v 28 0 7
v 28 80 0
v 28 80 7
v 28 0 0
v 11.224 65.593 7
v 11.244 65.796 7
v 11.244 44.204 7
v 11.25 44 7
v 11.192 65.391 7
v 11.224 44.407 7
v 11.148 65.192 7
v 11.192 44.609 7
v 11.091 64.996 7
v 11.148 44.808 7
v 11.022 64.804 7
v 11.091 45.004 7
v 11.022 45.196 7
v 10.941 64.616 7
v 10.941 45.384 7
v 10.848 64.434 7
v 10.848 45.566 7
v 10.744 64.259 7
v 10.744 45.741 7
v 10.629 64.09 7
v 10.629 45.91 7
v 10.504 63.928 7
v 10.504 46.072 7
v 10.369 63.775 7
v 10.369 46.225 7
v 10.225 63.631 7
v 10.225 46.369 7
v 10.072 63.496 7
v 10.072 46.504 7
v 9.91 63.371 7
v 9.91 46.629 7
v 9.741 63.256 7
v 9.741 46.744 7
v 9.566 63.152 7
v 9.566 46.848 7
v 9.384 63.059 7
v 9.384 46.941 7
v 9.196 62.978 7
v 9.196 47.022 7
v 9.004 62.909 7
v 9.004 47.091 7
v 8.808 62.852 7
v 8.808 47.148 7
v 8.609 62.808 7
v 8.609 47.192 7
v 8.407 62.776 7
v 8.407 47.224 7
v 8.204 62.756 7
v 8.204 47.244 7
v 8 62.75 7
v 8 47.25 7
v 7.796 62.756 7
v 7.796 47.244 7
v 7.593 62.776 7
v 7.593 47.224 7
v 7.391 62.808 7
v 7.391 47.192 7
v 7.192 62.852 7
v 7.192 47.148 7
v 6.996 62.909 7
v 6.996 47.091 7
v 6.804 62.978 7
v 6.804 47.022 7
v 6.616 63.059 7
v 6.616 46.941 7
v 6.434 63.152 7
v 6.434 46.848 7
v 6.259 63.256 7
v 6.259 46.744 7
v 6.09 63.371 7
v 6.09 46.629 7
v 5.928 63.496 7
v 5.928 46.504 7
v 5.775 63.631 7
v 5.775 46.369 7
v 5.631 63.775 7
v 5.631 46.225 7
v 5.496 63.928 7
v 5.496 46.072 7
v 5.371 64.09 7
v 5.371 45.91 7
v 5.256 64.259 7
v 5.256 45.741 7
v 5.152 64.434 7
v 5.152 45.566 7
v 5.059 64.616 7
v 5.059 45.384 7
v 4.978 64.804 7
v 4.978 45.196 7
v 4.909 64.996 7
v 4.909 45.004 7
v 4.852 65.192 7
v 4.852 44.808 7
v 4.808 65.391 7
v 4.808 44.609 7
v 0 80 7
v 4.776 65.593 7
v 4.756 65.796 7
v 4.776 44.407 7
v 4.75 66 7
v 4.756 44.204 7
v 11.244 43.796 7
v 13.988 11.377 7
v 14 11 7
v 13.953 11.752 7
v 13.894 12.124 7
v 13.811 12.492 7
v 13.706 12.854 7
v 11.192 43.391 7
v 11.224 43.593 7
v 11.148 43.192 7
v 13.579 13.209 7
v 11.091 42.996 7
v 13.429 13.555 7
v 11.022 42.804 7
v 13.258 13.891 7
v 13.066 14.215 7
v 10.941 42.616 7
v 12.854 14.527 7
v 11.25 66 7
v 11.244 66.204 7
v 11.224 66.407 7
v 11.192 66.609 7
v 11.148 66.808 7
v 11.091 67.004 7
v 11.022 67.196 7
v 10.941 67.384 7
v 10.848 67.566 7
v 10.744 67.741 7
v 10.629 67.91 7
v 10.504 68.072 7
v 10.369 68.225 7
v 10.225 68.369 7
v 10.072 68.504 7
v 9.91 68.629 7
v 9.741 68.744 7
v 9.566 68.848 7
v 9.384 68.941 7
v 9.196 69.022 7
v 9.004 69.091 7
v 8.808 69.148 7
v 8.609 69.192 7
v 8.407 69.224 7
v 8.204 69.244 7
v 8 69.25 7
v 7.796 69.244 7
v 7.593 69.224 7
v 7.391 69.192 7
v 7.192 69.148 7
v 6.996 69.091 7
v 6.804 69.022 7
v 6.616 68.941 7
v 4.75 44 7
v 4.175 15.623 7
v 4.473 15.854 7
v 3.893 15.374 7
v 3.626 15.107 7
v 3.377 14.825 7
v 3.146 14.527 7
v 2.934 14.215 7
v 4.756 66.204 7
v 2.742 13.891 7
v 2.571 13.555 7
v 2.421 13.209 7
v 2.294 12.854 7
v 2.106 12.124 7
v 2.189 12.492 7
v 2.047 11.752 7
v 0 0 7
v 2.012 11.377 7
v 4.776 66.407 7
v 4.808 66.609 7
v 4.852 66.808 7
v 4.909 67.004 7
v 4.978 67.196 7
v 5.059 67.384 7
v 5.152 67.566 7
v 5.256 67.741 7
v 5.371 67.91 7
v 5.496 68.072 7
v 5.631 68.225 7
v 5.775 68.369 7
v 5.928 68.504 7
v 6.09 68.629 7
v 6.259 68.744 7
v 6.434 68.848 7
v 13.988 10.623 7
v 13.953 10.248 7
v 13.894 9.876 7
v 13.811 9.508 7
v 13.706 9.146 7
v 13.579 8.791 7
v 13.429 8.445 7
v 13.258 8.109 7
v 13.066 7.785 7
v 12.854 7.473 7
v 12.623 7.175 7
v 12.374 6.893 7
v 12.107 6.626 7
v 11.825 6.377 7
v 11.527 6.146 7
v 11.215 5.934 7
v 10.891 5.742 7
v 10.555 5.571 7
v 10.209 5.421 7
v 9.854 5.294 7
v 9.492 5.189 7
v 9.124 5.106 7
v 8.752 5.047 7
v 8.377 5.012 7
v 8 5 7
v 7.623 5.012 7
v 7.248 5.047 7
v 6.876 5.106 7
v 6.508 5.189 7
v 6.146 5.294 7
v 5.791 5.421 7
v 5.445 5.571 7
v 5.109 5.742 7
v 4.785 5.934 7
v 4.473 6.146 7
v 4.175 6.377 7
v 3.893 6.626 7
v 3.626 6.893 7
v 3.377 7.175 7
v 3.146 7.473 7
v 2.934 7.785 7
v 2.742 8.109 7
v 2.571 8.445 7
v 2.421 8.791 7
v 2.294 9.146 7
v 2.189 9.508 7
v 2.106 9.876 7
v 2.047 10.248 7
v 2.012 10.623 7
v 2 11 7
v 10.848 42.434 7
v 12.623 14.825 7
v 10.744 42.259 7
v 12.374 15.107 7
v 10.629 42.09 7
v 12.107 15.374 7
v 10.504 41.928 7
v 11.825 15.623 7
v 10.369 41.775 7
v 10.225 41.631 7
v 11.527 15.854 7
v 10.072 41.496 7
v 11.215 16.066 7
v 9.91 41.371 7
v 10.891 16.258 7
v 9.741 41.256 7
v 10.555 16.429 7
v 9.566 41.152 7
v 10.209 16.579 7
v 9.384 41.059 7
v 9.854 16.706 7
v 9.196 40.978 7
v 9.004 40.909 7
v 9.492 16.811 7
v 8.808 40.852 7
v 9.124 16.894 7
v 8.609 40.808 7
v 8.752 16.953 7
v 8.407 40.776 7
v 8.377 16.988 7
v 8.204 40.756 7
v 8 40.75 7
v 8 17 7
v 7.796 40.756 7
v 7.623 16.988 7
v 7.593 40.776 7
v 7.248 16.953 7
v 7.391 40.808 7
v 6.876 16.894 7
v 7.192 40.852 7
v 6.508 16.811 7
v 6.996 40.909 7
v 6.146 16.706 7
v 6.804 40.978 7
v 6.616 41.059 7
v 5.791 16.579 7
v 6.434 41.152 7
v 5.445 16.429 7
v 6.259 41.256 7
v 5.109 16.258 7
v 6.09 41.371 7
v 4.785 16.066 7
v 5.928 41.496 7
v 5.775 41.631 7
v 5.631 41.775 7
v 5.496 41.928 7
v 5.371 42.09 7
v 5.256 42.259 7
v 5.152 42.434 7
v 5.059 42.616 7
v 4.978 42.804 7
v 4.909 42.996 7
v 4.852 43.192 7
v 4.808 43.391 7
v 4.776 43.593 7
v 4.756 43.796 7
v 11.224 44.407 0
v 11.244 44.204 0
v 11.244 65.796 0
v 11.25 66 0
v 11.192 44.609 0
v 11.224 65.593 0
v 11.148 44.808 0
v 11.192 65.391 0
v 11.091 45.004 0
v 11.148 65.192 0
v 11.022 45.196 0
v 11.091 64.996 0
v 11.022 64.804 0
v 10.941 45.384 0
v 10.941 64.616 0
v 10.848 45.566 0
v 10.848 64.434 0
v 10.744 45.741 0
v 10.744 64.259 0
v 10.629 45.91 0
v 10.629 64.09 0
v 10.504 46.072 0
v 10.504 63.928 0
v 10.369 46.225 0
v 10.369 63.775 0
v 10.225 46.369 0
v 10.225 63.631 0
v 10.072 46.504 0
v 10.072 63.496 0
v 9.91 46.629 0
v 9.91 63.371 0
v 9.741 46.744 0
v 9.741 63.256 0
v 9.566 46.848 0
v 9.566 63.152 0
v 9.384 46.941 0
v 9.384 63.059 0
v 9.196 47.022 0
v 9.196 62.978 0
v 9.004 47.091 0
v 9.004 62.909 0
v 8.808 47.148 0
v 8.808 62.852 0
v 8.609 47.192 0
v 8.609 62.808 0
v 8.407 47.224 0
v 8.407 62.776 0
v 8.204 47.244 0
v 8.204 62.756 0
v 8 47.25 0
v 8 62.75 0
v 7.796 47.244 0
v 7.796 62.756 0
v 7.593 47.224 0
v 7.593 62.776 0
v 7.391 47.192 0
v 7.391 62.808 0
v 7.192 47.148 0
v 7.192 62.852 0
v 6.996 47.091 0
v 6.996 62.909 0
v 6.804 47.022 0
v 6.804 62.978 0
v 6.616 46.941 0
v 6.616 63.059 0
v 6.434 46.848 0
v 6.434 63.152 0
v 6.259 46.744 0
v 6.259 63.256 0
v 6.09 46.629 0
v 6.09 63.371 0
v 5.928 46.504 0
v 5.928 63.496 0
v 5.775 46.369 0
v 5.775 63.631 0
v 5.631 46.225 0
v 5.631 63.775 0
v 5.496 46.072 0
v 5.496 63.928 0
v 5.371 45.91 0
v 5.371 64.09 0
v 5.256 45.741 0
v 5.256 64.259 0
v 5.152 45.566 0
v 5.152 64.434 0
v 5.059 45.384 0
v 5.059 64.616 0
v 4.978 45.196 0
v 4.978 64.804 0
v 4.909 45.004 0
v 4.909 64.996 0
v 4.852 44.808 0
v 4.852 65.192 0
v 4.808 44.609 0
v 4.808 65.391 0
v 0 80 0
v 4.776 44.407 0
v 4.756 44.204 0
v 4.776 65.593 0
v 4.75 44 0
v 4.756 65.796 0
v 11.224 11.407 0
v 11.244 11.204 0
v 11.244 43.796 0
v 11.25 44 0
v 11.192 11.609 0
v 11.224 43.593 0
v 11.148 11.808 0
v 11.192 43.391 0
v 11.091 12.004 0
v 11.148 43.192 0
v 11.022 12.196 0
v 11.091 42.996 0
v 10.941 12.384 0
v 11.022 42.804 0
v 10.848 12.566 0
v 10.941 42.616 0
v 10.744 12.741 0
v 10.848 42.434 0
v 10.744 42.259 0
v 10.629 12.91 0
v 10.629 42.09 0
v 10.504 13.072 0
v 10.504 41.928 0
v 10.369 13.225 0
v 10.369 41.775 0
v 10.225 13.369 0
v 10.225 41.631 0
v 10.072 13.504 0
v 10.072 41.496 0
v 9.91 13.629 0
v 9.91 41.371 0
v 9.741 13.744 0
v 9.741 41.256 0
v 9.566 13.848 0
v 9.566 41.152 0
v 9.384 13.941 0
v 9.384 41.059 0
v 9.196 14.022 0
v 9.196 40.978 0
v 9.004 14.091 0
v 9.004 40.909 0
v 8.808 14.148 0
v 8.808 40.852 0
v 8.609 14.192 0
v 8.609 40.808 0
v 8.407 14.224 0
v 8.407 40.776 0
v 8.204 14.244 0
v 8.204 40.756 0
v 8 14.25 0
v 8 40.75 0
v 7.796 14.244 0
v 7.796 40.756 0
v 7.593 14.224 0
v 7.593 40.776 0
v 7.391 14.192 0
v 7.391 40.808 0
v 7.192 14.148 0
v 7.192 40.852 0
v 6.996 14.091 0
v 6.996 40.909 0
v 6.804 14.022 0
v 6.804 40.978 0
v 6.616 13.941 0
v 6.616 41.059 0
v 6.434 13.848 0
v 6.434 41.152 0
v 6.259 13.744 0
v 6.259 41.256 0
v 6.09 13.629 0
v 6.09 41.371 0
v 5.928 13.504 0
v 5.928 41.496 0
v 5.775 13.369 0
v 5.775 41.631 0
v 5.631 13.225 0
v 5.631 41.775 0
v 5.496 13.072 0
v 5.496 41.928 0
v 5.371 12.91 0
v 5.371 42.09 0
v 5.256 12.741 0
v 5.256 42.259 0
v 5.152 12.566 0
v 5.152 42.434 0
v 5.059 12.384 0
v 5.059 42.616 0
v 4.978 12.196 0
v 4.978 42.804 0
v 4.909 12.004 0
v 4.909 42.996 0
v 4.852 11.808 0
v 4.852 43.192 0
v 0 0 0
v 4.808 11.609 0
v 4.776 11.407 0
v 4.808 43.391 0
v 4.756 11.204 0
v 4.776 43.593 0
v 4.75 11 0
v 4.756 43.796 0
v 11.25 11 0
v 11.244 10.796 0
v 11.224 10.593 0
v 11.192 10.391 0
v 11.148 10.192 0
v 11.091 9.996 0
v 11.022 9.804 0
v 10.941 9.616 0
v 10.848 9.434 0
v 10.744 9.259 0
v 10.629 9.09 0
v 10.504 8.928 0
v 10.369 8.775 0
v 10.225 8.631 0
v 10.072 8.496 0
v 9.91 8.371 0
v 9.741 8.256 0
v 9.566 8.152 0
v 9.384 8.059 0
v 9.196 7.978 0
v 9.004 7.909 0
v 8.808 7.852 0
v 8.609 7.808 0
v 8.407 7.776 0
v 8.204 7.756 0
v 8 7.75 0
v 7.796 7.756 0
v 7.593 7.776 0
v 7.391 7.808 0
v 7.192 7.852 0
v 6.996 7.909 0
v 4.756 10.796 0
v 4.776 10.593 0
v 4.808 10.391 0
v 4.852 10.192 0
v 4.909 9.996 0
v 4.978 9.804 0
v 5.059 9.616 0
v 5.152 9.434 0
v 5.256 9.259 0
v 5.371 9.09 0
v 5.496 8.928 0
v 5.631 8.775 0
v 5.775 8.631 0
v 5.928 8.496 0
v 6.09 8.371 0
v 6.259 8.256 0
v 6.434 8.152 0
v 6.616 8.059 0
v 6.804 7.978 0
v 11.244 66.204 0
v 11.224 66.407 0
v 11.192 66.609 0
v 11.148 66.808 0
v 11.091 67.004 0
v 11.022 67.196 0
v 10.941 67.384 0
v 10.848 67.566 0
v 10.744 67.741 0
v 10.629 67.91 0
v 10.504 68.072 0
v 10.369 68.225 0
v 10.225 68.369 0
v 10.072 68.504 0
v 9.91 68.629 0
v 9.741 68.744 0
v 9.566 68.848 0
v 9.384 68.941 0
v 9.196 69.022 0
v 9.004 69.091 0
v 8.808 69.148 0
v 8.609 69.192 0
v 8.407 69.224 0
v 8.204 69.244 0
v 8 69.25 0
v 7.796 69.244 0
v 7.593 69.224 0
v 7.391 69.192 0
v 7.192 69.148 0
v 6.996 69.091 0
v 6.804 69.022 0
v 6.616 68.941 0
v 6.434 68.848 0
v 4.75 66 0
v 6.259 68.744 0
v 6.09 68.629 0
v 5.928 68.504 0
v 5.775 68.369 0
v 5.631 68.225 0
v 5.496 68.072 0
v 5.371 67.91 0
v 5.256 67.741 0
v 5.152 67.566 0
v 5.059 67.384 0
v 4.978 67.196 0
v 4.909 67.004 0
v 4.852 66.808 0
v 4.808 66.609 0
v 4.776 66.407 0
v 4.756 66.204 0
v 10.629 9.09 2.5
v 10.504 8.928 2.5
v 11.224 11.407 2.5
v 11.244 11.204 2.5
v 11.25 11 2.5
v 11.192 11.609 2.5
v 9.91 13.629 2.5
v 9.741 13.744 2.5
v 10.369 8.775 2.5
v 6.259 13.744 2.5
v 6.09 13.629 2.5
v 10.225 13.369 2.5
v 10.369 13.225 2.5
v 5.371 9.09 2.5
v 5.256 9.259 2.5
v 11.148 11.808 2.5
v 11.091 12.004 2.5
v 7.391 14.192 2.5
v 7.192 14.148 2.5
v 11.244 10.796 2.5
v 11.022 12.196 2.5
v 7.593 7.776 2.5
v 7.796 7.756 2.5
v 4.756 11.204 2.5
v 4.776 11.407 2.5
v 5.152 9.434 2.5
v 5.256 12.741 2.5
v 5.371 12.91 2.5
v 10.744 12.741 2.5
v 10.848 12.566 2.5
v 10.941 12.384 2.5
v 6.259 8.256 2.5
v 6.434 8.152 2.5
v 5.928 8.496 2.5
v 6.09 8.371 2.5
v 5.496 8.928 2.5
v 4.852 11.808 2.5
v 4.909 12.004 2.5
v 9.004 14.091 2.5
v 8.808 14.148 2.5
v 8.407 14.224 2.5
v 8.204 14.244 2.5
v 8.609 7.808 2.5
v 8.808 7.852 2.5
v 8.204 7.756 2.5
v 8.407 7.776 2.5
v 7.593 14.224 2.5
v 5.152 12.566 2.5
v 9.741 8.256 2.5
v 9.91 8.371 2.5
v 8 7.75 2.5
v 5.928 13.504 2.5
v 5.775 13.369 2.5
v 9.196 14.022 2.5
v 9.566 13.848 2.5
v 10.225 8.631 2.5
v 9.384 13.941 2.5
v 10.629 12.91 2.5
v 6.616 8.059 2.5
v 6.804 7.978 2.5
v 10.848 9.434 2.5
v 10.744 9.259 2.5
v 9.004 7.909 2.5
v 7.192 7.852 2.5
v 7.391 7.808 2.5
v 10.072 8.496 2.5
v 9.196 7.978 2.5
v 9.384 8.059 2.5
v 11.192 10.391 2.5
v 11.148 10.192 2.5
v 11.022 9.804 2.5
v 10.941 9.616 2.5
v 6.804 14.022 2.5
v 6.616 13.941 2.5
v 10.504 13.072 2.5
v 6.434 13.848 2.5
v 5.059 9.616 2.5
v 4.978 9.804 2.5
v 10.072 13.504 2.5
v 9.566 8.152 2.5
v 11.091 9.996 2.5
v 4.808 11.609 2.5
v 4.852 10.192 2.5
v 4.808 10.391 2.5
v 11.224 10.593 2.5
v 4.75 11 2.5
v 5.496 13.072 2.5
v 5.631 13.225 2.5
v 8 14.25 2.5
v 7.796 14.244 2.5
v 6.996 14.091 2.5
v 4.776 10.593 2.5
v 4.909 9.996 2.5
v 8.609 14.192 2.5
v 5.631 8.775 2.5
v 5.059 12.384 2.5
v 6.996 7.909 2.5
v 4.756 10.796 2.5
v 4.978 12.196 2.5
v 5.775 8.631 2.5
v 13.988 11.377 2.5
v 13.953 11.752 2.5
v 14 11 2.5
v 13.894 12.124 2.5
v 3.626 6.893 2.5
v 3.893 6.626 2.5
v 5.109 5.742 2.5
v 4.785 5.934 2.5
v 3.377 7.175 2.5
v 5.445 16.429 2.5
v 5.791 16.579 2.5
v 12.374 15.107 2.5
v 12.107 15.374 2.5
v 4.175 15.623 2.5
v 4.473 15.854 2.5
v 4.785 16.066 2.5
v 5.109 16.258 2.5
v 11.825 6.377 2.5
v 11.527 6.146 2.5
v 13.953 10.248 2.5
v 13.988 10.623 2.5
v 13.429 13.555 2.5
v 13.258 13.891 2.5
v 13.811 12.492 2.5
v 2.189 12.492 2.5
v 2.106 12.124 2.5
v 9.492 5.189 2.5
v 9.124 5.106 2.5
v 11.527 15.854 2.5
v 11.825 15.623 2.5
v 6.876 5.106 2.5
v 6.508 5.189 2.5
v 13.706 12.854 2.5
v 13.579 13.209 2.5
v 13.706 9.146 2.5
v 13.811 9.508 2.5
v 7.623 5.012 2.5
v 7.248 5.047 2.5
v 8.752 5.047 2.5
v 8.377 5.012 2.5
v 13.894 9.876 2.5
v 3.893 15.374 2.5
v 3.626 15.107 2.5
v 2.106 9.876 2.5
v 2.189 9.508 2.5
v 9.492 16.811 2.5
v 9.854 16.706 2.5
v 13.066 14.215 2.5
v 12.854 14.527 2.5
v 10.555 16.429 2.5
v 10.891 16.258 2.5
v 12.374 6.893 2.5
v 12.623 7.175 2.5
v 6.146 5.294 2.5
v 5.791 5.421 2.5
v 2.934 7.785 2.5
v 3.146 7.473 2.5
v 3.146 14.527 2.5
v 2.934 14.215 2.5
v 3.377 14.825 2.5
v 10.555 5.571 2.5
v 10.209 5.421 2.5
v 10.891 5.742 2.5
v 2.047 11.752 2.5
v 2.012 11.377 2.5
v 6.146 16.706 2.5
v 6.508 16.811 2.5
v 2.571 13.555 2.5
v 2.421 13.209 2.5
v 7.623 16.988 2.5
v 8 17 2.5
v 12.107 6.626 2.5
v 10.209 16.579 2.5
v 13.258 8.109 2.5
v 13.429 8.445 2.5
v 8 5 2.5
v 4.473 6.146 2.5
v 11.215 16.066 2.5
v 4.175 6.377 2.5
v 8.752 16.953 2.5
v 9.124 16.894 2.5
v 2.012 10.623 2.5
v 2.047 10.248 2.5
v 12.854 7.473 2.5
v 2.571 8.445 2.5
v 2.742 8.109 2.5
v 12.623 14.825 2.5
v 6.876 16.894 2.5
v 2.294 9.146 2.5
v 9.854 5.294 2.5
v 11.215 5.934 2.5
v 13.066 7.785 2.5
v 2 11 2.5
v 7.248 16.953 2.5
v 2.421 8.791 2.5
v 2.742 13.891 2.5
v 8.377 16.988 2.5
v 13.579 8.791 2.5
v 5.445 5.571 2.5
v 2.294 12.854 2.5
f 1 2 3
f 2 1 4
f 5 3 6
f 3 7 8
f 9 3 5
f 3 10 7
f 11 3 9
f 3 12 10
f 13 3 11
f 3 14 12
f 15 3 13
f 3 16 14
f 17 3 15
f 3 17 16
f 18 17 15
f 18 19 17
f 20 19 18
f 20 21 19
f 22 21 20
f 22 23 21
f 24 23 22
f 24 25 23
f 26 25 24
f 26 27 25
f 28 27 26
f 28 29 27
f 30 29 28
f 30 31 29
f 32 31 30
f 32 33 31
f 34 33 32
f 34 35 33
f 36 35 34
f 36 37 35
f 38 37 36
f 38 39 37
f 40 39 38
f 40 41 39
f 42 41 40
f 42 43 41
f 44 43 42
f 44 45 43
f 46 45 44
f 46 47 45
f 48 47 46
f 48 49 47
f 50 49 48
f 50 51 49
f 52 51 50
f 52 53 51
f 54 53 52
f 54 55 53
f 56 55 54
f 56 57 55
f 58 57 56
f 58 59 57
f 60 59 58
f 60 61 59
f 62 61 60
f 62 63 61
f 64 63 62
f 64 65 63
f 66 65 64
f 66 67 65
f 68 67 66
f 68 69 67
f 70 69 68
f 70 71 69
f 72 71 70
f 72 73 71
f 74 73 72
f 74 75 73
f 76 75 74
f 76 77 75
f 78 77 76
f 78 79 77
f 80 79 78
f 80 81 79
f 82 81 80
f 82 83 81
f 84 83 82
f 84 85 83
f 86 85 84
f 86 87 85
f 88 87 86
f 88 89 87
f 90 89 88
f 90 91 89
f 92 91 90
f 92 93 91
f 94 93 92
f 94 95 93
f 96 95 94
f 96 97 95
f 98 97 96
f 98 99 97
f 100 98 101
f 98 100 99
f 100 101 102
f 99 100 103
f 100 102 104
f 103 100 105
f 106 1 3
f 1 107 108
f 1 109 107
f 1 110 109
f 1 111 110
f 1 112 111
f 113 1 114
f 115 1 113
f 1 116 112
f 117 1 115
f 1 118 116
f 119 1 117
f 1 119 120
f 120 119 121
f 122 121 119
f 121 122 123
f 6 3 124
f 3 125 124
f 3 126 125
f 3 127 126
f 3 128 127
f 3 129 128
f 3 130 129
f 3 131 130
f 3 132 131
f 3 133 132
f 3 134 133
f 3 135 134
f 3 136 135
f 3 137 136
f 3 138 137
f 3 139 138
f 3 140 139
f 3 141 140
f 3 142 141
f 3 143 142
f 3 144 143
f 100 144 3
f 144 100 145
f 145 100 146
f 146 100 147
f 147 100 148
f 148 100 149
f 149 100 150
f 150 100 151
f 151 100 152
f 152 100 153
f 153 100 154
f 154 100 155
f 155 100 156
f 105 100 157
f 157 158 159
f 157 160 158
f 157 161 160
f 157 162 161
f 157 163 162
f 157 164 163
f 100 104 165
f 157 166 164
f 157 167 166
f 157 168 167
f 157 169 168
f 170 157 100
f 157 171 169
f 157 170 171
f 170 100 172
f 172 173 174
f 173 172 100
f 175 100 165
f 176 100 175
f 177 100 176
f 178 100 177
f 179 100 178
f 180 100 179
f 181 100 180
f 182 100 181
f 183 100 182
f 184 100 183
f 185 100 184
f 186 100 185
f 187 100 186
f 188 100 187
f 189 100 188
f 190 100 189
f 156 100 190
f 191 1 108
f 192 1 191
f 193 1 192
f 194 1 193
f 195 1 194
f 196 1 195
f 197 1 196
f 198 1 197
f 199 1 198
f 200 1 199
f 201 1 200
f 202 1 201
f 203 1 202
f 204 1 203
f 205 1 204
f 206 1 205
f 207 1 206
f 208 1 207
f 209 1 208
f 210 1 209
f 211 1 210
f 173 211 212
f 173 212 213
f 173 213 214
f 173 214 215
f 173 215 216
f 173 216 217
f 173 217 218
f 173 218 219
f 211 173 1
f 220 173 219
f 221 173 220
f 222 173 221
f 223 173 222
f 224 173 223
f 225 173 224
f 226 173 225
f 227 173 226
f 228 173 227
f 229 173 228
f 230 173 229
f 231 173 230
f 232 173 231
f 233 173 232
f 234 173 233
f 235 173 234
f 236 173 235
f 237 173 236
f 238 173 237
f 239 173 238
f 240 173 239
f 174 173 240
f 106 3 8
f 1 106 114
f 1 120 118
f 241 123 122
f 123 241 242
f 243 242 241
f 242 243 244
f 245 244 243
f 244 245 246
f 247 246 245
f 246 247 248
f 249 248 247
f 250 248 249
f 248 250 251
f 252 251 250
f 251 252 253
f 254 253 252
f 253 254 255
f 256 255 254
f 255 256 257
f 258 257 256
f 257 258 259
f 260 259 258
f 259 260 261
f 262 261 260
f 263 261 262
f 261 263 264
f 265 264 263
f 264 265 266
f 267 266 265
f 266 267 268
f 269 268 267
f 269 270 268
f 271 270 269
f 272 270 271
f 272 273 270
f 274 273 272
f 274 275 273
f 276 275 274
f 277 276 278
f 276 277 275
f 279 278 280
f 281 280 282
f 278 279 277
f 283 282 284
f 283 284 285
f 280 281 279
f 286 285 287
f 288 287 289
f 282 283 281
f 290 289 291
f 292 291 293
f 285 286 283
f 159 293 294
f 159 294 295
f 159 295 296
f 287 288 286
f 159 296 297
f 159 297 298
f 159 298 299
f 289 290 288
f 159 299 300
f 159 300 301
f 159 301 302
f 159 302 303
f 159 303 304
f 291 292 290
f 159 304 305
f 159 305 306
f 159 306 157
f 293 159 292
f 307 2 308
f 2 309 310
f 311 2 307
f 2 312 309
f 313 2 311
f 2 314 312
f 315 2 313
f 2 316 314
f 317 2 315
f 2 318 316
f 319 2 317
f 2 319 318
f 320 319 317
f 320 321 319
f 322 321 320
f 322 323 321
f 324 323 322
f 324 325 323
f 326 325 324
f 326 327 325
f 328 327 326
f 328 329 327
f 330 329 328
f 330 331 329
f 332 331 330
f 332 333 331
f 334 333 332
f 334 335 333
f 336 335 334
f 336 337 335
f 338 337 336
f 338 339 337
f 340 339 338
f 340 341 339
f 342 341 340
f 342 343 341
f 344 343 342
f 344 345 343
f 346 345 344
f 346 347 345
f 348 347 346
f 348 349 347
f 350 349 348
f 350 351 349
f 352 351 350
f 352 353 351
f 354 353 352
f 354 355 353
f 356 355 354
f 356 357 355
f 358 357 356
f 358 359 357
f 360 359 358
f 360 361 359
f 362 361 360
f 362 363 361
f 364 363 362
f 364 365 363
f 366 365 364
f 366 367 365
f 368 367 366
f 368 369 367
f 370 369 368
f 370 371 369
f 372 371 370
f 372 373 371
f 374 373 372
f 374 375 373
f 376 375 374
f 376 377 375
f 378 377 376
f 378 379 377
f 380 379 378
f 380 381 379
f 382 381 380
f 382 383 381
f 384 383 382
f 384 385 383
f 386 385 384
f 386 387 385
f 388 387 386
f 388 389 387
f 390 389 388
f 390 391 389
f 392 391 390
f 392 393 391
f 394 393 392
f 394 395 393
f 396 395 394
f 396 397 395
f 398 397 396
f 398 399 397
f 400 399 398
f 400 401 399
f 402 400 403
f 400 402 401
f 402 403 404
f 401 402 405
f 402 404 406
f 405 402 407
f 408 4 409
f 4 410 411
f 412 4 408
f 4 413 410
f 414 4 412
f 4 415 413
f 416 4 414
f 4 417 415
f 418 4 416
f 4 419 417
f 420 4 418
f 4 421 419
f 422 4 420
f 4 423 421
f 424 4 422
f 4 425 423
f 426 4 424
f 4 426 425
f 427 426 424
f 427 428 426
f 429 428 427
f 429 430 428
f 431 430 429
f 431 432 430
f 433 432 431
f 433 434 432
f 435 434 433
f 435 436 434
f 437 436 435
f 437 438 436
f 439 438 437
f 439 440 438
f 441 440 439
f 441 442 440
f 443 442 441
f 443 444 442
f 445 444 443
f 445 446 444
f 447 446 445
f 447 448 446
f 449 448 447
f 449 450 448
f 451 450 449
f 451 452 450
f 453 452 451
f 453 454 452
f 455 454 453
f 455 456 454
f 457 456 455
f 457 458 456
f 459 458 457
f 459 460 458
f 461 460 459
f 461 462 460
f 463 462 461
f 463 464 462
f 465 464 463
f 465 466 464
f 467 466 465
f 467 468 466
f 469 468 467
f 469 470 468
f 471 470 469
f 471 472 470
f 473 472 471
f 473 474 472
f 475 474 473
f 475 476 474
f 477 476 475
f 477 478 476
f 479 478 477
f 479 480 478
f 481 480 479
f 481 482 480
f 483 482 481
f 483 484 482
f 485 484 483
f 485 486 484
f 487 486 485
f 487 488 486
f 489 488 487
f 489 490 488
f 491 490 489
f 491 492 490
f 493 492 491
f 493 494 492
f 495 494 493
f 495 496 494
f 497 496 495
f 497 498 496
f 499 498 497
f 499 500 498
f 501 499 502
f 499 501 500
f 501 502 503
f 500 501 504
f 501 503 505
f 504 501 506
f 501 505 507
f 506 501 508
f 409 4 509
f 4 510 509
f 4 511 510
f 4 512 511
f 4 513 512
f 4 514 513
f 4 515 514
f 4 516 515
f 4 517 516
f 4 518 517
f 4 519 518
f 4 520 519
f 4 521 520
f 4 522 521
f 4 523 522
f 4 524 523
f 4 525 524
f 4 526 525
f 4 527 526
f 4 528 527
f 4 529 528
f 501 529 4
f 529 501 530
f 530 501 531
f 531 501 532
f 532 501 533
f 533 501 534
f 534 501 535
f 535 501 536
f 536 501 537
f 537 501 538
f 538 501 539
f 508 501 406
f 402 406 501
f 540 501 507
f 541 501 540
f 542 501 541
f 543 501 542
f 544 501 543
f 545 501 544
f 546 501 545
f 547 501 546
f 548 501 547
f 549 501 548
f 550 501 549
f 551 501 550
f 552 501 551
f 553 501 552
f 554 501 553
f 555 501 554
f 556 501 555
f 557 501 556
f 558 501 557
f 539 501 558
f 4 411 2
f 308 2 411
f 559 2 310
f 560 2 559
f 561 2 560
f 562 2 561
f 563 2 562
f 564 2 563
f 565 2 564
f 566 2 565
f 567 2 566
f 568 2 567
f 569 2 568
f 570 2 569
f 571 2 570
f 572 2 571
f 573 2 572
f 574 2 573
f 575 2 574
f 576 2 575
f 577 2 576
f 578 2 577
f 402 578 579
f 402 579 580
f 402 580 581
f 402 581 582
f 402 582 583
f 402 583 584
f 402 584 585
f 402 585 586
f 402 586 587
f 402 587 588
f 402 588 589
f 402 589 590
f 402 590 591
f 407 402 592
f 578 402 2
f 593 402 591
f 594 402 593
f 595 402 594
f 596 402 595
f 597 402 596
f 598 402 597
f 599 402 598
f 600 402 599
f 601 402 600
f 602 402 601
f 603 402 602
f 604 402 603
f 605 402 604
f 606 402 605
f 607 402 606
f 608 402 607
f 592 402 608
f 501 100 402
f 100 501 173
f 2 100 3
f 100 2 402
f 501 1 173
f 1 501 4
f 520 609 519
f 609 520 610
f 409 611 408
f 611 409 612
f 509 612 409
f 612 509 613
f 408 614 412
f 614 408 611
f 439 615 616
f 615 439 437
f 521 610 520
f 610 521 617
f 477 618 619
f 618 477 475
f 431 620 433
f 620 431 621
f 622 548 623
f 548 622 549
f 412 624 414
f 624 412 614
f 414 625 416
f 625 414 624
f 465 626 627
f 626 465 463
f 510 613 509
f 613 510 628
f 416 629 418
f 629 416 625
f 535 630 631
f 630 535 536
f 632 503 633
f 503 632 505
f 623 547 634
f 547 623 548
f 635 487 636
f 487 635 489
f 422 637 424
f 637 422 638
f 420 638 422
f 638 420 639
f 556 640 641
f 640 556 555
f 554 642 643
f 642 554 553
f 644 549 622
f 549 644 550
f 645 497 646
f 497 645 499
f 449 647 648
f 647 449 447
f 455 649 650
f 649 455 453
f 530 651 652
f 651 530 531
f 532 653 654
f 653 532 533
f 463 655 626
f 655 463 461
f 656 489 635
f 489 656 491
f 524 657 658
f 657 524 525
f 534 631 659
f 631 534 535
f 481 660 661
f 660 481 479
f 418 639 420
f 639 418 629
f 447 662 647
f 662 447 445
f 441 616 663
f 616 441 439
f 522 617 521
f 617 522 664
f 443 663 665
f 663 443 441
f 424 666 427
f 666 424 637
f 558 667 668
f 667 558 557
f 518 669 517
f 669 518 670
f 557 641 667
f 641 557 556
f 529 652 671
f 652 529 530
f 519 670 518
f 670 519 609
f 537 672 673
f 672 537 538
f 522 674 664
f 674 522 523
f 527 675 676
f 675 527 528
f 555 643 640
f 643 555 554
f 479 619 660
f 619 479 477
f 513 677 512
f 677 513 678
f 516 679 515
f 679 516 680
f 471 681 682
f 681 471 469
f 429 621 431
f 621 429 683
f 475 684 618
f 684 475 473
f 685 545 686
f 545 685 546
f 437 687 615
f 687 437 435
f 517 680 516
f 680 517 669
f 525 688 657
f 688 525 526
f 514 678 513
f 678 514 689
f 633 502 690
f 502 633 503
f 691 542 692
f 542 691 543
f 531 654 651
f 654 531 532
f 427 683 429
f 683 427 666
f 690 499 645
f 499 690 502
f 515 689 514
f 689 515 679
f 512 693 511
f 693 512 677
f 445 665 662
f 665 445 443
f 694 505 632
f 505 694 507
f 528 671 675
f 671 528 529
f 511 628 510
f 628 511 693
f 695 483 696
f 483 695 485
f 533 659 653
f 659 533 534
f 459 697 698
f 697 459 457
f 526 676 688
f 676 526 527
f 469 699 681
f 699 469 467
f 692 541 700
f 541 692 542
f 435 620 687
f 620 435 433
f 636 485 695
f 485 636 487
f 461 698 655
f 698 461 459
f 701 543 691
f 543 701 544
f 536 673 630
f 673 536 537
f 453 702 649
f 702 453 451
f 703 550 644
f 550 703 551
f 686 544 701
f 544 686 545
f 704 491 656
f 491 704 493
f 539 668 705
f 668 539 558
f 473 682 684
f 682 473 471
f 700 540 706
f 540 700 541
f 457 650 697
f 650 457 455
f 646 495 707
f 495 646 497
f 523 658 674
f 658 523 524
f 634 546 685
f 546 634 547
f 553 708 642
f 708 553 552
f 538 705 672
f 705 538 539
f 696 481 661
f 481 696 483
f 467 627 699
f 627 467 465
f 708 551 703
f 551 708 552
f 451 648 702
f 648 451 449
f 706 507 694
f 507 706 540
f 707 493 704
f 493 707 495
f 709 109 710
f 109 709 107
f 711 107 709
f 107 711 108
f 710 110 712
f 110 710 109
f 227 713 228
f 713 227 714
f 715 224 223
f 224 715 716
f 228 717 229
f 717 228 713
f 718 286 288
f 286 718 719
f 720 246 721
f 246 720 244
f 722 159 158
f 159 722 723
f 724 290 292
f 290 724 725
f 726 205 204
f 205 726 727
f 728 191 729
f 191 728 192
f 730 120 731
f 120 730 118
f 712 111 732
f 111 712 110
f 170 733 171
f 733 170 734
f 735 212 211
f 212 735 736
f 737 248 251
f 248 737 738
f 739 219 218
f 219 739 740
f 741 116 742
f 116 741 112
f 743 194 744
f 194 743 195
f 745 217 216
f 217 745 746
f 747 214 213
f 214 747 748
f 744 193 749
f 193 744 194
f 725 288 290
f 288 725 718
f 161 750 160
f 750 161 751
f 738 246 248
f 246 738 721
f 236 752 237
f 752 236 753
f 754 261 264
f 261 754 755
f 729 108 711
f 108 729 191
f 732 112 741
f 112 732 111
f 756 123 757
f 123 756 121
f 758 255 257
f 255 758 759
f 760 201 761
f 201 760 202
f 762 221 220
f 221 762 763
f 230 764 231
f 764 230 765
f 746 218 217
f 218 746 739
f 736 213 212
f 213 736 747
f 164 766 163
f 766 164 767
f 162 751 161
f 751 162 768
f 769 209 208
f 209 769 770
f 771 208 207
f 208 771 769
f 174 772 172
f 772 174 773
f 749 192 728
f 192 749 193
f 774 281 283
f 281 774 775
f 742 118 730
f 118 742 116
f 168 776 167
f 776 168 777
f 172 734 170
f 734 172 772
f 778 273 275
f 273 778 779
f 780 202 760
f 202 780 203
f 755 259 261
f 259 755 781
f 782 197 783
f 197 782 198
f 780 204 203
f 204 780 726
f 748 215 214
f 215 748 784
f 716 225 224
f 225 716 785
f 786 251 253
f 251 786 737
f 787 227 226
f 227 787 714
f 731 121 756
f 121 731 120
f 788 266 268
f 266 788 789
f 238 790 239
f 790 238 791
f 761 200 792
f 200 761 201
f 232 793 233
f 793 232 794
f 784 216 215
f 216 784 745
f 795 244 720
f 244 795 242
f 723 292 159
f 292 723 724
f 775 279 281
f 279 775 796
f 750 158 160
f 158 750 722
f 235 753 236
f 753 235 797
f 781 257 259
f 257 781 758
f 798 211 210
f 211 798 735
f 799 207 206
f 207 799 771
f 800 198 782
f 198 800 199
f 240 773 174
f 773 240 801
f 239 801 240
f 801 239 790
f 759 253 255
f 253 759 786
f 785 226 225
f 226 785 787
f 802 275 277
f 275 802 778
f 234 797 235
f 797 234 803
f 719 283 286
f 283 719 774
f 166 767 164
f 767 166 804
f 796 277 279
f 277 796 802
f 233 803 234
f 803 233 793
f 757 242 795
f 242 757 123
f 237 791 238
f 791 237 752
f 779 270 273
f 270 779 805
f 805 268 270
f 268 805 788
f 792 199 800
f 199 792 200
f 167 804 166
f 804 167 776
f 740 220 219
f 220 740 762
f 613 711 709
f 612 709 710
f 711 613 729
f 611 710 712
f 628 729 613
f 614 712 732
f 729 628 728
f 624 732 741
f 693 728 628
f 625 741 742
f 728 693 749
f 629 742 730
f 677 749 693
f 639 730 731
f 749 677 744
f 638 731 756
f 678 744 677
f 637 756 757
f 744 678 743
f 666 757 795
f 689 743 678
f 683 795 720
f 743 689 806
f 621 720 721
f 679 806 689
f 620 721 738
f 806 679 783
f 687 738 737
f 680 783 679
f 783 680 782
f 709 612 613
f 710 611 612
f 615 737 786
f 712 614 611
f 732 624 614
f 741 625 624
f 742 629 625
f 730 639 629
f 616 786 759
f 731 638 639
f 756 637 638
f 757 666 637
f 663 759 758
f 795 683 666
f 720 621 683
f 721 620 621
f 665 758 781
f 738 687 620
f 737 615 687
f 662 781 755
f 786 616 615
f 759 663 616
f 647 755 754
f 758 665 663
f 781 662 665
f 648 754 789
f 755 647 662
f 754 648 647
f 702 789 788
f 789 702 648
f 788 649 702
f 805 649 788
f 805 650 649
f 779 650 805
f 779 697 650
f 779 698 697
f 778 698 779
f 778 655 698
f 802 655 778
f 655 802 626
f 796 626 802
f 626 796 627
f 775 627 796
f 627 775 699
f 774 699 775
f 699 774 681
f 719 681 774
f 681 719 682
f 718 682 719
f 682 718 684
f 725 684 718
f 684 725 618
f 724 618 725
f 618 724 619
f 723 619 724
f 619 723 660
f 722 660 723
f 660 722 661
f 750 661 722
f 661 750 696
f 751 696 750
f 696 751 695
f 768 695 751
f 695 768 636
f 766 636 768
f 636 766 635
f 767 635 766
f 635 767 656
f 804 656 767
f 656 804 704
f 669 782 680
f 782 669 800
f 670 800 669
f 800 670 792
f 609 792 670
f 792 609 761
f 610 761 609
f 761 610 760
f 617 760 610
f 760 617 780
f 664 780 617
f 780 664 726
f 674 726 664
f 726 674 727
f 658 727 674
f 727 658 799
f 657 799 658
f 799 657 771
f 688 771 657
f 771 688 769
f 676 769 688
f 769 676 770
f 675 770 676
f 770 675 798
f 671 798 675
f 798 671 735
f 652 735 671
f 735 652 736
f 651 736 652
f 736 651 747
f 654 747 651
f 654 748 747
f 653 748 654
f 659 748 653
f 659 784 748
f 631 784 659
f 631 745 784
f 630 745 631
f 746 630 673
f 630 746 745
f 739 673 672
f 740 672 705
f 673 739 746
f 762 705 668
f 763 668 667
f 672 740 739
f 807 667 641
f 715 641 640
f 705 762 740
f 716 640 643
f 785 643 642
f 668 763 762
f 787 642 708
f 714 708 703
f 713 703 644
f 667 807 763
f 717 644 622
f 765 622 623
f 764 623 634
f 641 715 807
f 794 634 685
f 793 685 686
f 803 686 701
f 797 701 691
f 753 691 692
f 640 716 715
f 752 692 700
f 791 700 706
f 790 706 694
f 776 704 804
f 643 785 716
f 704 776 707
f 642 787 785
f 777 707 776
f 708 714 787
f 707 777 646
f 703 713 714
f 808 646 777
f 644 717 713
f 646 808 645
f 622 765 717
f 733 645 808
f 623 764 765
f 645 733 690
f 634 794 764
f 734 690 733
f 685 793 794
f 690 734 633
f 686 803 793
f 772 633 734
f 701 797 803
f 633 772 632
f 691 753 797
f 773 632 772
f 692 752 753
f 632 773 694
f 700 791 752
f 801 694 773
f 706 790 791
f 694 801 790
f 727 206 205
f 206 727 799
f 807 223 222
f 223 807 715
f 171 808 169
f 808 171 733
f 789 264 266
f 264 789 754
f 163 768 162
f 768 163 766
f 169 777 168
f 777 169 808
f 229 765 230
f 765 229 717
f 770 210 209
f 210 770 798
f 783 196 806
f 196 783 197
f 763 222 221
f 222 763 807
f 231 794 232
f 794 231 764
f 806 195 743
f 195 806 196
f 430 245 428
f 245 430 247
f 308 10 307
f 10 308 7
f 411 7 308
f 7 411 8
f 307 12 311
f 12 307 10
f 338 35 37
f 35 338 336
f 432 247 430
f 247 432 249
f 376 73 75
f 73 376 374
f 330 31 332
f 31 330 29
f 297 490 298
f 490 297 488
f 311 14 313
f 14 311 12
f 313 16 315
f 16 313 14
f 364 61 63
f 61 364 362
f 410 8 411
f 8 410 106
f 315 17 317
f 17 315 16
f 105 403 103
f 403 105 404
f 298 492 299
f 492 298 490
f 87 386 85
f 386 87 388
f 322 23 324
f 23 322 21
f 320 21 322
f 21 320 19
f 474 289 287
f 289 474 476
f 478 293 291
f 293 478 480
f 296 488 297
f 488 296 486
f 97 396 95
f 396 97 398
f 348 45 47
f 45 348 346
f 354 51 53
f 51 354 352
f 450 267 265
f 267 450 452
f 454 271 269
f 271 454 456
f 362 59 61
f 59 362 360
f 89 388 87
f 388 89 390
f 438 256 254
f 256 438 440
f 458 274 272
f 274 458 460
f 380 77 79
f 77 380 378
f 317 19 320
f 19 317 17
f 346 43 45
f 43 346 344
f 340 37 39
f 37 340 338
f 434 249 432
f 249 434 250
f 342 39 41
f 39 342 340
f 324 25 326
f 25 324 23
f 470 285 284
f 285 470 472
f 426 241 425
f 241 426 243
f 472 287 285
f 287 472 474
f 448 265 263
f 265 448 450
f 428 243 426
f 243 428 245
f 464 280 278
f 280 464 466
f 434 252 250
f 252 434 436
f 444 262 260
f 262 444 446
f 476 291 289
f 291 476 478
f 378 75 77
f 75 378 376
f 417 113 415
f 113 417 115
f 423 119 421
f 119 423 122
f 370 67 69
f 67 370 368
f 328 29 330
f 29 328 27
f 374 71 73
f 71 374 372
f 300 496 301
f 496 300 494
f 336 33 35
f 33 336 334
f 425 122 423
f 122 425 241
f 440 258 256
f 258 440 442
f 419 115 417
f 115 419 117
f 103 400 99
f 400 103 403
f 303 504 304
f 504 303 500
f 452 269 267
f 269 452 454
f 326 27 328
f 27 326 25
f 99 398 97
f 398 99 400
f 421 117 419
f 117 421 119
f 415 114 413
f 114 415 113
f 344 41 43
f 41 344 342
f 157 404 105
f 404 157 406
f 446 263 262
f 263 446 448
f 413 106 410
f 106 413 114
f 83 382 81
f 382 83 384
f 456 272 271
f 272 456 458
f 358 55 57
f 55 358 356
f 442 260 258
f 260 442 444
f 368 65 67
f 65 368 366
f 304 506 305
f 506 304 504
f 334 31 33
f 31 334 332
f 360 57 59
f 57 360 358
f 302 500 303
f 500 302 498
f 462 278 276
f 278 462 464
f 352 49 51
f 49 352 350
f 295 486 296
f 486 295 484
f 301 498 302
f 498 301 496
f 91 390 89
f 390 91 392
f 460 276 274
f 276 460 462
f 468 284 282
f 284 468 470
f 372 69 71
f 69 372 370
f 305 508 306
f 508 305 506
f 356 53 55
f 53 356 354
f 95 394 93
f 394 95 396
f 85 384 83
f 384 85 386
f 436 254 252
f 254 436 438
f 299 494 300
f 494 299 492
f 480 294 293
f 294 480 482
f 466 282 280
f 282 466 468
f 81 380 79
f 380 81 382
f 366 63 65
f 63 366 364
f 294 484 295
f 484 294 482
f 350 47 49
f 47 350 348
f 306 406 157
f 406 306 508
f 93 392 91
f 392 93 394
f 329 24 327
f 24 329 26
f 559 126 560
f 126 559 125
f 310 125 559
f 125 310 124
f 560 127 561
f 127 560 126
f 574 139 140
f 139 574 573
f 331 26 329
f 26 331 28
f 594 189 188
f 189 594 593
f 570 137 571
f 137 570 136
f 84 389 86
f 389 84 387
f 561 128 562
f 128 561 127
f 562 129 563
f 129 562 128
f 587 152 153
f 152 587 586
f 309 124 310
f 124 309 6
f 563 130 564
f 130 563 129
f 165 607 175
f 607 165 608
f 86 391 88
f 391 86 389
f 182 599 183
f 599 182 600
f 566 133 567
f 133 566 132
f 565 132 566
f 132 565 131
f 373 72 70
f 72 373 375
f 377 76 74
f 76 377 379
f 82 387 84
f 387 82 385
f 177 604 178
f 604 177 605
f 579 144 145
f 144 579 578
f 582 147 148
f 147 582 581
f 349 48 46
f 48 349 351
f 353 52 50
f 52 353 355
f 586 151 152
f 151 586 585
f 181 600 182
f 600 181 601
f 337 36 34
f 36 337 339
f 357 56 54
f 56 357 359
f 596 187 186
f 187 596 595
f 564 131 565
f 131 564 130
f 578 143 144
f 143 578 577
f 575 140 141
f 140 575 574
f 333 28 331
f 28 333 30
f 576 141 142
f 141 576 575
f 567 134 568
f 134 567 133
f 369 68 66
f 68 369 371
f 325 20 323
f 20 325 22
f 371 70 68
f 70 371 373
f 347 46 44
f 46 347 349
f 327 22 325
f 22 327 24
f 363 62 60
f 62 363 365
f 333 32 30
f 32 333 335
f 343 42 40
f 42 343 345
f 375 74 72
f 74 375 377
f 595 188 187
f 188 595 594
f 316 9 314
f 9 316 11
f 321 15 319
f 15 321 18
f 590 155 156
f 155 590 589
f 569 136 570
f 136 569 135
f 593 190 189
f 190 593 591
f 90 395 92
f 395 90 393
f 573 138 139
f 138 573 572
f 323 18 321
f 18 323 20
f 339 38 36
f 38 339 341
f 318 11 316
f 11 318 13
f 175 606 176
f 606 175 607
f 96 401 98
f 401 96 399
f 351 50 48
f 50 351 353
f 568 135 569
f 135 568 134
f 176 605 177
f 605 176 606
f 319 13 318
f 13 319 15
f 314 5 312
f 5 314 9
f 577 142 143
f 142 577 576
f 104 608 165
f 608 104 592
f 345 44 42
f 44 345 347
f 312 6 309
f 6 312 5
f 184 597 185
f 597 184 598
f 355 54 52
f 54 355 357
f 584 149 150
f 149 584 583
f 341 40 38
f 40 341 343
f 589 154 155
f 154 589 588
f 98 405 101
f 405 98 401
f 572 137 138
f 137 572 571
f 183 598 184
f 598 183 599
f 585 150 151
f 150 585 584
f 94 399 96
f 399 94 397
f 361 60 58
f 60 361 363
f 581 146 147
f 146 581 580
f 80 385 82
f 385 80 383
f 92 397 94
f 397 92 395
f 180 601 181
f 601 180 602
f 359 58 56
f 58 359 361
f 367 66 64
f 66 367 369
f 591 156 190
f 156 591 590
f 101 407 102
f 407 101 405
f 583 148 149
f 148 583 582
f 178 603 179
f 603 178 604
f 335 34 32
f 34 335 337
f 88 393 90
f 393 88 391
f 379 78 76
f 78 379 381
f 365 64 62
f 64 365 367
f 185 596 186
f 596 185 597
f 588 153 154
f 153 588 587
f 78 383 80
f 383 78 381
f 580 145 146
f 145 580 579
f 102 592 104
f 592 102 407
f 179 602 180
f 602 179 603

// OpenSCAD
difference() {
  cube([28, 80, 7]);
  
  translate([8, 11, -0.5]) {
    cylinder(h = 8, r = 3.25, $fn = 100);
  }
  
  
  translate([8, 11, 2.5]) {
    cylinder(h = 8, r = 6, $fn = 100);
  }
  
  translate([8, 44, -0.5]) {
    cylinder(h = 8, r = 3.25, $fn = 100);
  }
  
  translate([8, 66, -0.5]) {
    cylinder(h = 8, r = 3.25, $fn = 100);
  }
}
